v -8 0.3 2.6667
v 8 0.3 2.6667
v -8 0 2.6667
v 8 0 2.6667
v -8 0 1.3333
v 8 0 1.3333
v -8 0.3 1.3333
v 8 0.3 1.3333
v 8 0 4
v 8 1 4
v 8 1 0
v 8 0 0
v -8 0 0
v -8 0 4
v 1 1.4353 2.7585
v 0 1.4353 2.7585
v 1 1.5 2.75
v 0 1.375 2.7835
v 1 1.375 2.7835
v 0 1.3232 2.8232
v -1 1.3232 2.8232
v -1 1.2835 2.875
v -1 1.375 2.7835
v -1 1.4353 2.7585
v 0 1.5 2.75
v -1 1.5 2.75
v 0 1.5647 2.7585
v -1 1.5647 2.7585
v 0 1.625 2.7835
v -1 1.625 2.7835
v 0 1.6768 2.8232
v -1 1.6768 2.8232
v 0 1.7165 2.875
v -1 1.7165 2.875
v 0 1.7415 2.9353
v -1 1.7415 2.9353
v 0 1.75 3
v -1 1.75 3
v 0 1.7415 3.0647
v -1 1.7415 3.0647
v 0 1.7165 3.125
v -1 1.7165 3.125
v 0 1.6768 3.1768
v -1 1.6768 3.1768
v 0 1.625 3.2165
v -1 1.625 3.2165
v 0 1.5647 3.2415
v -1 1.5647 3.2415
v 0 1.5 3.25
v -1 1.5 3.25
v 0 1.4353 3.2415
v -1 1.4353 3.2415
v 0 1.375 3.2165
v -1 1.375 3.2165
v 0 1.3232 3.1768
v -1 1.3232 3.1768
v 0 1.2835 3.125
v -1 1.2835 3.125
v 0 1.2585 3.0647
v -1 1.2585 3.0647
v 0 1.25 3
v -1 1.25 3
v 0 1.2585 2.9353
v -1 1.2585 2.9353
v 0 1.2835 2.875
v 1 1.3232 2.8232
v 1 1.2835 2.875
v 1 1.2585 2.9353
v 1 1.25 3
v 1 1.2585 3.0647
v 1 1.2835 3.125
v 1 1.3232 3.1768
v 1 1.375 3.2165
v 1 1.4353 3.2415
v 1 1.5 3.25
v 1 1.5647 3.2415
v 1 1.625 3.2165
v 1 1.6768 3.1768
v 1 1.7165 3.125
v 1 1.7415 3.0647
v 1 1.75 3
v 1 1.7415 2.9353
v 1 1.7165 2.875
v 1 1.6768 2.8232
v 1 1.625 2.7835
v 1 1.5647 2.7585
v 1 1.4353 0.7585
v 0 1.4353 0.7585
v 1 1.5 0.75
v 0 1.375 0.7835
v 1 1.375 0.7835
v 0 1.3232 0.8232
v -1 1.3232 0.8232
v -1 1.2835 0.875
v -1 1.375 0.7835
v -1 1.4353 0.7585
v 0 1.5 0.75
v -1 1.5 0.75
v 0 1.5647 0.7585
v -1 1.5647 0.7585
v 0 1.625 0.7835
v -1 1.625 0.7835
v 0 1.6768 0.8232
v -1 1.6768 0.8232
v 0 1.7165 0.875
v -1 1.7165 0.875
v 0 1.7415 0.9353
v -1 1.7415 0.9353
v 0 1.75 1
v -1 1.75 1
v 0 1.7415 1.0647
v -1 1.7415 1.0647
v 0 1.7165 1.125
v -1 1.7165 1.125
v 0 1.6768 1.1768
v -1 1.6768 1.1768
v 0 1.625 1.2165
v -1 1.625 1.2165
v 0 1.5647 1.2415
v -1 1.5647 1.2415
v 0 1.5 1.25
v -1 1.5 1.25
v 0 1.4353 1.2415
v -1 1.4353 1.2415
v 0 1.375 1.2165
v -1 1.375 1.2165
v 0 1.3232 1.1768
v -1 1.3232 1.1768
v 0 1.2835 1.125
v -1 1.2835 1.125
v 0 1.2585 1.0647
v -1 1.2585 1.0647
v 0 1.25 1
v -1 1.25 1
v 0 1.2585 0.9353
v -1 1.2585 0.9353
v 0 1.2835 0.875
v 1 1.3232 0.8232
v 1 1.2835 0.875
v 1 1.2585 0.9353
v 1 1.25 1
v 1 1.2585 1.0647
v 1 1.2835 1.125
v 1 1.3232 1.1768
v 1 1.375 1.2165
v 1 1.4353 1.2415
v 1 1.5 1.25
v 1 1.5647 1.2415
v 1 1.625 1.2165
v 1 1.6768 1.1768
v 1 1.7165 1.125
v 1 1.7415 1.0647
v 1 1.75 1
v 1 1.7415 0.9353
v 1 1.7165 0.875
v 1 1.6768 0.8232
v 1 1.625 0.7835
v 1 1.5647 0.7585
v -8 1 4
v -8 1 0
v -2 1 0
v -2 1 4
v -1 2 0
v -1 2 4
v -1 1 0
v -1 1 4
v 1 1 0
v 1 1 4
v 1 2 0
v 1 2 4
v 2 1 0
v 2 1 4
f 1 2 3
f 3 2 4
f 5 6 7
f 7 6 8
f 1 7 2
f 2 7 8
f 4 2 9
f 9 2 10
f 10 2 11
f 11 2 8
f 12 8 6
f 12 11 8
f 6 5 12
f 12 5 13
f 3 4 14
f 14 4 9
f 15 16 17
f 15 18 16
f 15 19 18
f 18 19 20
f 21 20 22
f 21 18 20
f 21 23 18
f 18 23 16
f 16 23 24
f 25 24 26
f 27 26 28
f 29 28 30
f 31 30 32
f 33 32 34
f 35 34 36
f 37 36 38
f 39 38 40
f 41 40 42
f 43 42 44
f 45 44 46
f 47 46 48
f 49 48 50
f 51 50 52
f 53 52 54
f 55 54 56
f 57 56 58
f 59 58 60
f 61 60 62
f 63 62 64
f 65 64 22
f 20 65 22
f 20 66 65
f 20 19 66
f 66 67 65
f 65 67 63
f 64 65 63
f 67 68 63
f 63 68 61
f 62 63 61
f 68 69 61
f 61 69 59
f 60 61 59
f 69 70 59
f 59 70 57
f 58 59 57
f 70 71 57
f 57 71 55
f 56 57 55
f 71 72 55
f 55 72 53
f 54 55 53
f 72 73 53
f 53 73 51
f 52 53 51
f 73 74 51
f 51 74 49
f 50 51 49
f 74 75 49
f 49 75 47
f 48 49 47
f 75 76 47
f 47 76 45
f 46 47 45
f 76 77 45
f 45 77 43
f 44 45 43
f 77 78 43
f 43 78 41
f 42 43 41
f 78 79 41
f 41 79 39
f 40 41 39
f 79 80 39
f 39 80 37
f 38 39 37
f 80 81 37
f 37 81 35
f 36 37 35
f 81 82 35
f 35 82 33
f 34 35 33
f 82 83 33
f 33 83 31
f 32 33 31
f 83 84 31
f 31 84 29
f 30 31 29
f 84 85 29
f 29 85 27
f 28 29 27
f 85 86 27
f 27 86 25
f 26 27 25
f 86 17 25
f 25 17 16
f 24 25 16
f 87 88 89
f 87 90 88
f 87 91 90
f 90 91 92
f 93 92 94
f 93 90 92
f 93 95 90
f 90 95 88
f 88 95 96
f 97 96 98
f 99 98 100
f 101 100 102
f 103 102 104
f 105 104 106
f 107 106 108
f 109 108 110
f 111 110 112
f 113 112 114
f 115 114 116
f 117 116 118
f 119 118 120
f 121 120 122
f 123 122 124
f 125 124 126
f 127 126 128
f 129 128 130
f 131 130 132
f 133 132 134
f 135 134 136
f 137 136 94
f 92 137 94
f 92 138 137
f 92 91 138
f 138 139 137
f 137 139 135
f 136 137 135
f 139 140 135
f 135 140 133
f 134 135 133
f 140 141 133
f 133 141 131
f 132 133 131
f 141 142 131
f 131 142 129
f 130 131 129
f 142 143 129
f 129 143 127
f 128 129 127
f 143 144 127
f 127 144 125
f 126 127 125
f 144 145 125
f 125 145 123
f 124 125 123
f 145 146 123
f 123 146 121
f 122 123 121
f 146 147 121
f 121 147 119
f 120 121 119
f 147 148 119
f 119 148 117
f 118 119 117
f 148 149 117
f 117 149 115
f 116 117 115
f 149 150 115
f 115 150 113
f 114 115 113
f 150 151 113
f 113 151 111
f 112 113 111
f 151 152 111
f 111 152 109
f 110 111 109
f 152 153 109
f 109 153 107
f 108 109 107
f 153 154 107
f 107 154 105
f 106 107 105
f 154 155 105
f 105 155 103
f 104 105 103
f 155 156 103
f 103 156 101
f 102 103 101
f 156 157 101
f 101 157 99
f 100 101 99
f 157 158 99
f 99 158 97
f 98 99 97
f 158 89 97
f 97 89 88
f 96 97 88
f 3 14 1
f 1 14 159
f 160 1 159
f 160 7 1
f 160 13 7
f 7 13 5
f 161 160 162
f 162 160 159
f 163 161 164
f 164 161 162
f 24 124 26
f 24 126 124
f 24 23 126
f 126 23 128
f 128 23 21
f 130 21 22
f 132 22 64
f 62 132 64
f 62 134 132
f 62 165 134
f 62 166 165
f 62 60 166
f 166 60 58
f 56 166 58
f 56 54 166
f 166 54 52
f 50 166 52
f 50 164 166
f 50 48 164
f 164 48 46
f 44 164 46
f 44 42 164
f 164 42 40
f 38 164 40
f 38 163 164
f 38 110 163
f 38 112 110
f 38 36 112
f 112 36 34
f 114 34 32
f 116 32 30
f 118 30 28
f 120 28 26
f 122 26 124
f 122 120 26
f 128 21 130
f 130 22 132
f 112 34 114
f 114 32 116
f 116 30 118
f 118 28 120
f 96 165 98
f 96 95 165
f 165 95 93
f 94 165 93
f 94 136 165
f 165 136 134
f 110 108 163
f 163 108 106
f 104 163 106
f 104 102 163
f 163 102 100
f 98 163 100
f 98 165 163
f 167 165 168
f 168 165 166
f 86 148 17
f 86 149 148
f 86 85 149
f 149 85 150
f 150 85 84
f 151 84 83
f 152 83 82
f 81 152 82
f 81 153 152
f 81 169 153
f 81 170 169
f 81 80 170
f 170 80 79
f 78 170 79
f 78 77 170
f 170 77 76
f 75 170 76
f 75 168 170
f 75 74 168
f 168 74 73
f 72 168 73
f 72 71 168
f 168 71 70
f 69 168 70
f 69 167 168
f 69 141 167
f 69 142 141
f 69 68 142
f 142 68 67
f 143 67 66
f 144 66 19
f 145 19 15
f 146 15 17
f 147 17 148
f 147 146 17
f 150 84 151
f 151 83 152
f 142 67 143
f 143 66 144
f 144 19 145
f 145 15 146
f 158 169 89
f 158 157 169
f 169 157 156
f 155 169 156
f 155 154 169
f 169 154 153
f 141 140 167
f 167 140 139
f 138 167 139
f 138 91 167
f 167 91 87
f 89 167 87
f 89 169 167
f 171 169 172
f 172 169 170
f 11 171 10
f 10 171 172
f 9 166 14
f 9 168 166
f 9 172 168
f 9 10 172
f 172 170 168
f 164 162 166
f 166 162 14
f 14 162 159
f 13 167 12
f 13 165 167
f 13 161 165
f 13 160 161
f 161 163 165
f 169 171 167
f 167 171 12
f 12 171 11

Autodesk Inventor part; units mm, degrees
ref_plane "YZ Plane" through (0, 0, 0) normal (1, 0, 0) x (0, 1, 0)
ref_plane "XZ Plane" through (0, 0, 0) normal (0, 1, 0) x (-1, 0, 0)
ref_plane "XY Plane" through (0, 0, 0) normal (0, 0, 1) x (1, 0, 0)
sketch "Sketch1" plane through (0, 0, 0) normal (0, 0, 1) x (1, 0, 0)
  line L0 (-1, 2) -> (-2, 1)
  line L1 (1, 2) -> (2, 1)
  line L2 (-1, 2) -> (-1, 1)
  line L3 (-1, 1) -> (1, 1)
  line L4 (1, 1) -> (1, 2)
  line L5 (0, 0) -> (8, 0)
  line L6 (8, 0) -> (8, 1)
  line L7 (8, 1) -> (2, 1)
  line L8 (0, 0) -> (-8, 0)
  line L9 (-8, 0) -> (-8, 1)
  line L10 (-8, 1) -> (-2, 1)
  dimension "d7" = 2
  dimension "d8" = 1
  dimension "d9" = 2
  dimension "d29" = 8
  dimension "d30" = 8
extrude "Extrusion1" add sketch "Sketch1" along normal blind 4
sketch "Sketch2" plane through (-1, 1, 0) normal (1, 0, 0) x (0, 0, -1)
  line L0 (0, 0) -> (0, 1) projected
  line L1 (-4, 0) -> (-4, 1) projected
  circle A0 centre (-1, 0.5) radius 0.25
  circle A1 centre (-3, 0.5) radius 0.25
  point P0 (0, -1)
  dimension "d14" = 0.5
  dimension "d15" = 0.5
extrude "Extrusion2" add sketch "Sketch2" along normal blind 2 contours A0
sketch "Sketch3" plane through (-1, 1, 0) normal (1, 0, 0) x (0, 0, -1)
  line L0 (-4, 0) -> (-4, 1) projected
  circle A0 centre (-3, 0.5) radius 0.25
  point P0 (0, -1)
  dimension "d19" = 0.5
extrude "Extrusion3" add sketch "Sketch3" along normal blind 2
sketch "Sketch4" plane through (7, 0, 0) normal (1, 0, 0) x (0, 0, -1)
  line L0 (0, 0) -> (-1.3333, 0)
  line L1 (-1.3333, 0) -> (-1.3333, 0.3)
  line L2 (-1.3333, 0.3) -> (-2.6667, 0.3)
  line L3 (-2.6667, 0.3) -> (-2.6667, 0)
  point P0 (-4, 0)
  dimension "d22" = 1.3333
  dimension "d23" = 1.3333
  dimension "d24" = 0.3
split "Split1" [suppressed]
sketch "Sketch5" plane through (-1, 1, 0) normal (1, 0, 0) x (0, 0, -1)
  line L0 (0, 0) -> (0, 1) projected
  circle A0 centre (-1, 0.5) radius 0.25 projected
  circle A1 centre (-3, 0.5) radius 0.25 projected
  point P0 (0, -1)
  dimension "d25" = 1
  dimension "d26" = 2
sketch "Sketch6" plane through (-1, 1, 0) normal (1, 0, 0) x (0, 0, -1)
  line L0 (0, 1) -> (-4, 1) projected
  circle A0 centre (-1, 0.5) radius 0.25 projected
  point P0 (0, -1)
  dimension "d27" = 0.5
sketch "Sketch8" plane through (0, 0, 4) normal (0, 0, 1) x (1, 0, 0)
  point P0 (0, 0)
sketch "Sketch9" plane through (0, 0, 4) normal (0, 0, 1) x (1, 0, 0)
  point P0 (0, 0)
sketch "Sketch10" plane through (0, 0, 0) normal (0, 0, -1) x (-1, 0, 0)
  point P0 (0, 0)
sketch "Sketch11" plane through (-8, 0, 0) normal (-1, 0, 0) x (0, 0, 1)
  line L0 (2.6667, 0) -> (2.6667, 0.3)
  line L1 (2.6667, 0.3) -> (1.3333, 0.3)
  line L2 (1.3333, 0.3) -> (1.3333, 0)
  line L3 (2.6667, 0) -> (4, 0)
  point P0 (0, 0)
  dimension "d31" = 1.3333
  dimension "d32" = 1.3333
  dimension "d33" = 0.3
split body "Split2" sketch "Sketch11" result one side removed curves L3 L0 L1 L2 removed pieces at (-2.6667, 0.1, 1.7778)
properties part number "Tank Tread link A"
